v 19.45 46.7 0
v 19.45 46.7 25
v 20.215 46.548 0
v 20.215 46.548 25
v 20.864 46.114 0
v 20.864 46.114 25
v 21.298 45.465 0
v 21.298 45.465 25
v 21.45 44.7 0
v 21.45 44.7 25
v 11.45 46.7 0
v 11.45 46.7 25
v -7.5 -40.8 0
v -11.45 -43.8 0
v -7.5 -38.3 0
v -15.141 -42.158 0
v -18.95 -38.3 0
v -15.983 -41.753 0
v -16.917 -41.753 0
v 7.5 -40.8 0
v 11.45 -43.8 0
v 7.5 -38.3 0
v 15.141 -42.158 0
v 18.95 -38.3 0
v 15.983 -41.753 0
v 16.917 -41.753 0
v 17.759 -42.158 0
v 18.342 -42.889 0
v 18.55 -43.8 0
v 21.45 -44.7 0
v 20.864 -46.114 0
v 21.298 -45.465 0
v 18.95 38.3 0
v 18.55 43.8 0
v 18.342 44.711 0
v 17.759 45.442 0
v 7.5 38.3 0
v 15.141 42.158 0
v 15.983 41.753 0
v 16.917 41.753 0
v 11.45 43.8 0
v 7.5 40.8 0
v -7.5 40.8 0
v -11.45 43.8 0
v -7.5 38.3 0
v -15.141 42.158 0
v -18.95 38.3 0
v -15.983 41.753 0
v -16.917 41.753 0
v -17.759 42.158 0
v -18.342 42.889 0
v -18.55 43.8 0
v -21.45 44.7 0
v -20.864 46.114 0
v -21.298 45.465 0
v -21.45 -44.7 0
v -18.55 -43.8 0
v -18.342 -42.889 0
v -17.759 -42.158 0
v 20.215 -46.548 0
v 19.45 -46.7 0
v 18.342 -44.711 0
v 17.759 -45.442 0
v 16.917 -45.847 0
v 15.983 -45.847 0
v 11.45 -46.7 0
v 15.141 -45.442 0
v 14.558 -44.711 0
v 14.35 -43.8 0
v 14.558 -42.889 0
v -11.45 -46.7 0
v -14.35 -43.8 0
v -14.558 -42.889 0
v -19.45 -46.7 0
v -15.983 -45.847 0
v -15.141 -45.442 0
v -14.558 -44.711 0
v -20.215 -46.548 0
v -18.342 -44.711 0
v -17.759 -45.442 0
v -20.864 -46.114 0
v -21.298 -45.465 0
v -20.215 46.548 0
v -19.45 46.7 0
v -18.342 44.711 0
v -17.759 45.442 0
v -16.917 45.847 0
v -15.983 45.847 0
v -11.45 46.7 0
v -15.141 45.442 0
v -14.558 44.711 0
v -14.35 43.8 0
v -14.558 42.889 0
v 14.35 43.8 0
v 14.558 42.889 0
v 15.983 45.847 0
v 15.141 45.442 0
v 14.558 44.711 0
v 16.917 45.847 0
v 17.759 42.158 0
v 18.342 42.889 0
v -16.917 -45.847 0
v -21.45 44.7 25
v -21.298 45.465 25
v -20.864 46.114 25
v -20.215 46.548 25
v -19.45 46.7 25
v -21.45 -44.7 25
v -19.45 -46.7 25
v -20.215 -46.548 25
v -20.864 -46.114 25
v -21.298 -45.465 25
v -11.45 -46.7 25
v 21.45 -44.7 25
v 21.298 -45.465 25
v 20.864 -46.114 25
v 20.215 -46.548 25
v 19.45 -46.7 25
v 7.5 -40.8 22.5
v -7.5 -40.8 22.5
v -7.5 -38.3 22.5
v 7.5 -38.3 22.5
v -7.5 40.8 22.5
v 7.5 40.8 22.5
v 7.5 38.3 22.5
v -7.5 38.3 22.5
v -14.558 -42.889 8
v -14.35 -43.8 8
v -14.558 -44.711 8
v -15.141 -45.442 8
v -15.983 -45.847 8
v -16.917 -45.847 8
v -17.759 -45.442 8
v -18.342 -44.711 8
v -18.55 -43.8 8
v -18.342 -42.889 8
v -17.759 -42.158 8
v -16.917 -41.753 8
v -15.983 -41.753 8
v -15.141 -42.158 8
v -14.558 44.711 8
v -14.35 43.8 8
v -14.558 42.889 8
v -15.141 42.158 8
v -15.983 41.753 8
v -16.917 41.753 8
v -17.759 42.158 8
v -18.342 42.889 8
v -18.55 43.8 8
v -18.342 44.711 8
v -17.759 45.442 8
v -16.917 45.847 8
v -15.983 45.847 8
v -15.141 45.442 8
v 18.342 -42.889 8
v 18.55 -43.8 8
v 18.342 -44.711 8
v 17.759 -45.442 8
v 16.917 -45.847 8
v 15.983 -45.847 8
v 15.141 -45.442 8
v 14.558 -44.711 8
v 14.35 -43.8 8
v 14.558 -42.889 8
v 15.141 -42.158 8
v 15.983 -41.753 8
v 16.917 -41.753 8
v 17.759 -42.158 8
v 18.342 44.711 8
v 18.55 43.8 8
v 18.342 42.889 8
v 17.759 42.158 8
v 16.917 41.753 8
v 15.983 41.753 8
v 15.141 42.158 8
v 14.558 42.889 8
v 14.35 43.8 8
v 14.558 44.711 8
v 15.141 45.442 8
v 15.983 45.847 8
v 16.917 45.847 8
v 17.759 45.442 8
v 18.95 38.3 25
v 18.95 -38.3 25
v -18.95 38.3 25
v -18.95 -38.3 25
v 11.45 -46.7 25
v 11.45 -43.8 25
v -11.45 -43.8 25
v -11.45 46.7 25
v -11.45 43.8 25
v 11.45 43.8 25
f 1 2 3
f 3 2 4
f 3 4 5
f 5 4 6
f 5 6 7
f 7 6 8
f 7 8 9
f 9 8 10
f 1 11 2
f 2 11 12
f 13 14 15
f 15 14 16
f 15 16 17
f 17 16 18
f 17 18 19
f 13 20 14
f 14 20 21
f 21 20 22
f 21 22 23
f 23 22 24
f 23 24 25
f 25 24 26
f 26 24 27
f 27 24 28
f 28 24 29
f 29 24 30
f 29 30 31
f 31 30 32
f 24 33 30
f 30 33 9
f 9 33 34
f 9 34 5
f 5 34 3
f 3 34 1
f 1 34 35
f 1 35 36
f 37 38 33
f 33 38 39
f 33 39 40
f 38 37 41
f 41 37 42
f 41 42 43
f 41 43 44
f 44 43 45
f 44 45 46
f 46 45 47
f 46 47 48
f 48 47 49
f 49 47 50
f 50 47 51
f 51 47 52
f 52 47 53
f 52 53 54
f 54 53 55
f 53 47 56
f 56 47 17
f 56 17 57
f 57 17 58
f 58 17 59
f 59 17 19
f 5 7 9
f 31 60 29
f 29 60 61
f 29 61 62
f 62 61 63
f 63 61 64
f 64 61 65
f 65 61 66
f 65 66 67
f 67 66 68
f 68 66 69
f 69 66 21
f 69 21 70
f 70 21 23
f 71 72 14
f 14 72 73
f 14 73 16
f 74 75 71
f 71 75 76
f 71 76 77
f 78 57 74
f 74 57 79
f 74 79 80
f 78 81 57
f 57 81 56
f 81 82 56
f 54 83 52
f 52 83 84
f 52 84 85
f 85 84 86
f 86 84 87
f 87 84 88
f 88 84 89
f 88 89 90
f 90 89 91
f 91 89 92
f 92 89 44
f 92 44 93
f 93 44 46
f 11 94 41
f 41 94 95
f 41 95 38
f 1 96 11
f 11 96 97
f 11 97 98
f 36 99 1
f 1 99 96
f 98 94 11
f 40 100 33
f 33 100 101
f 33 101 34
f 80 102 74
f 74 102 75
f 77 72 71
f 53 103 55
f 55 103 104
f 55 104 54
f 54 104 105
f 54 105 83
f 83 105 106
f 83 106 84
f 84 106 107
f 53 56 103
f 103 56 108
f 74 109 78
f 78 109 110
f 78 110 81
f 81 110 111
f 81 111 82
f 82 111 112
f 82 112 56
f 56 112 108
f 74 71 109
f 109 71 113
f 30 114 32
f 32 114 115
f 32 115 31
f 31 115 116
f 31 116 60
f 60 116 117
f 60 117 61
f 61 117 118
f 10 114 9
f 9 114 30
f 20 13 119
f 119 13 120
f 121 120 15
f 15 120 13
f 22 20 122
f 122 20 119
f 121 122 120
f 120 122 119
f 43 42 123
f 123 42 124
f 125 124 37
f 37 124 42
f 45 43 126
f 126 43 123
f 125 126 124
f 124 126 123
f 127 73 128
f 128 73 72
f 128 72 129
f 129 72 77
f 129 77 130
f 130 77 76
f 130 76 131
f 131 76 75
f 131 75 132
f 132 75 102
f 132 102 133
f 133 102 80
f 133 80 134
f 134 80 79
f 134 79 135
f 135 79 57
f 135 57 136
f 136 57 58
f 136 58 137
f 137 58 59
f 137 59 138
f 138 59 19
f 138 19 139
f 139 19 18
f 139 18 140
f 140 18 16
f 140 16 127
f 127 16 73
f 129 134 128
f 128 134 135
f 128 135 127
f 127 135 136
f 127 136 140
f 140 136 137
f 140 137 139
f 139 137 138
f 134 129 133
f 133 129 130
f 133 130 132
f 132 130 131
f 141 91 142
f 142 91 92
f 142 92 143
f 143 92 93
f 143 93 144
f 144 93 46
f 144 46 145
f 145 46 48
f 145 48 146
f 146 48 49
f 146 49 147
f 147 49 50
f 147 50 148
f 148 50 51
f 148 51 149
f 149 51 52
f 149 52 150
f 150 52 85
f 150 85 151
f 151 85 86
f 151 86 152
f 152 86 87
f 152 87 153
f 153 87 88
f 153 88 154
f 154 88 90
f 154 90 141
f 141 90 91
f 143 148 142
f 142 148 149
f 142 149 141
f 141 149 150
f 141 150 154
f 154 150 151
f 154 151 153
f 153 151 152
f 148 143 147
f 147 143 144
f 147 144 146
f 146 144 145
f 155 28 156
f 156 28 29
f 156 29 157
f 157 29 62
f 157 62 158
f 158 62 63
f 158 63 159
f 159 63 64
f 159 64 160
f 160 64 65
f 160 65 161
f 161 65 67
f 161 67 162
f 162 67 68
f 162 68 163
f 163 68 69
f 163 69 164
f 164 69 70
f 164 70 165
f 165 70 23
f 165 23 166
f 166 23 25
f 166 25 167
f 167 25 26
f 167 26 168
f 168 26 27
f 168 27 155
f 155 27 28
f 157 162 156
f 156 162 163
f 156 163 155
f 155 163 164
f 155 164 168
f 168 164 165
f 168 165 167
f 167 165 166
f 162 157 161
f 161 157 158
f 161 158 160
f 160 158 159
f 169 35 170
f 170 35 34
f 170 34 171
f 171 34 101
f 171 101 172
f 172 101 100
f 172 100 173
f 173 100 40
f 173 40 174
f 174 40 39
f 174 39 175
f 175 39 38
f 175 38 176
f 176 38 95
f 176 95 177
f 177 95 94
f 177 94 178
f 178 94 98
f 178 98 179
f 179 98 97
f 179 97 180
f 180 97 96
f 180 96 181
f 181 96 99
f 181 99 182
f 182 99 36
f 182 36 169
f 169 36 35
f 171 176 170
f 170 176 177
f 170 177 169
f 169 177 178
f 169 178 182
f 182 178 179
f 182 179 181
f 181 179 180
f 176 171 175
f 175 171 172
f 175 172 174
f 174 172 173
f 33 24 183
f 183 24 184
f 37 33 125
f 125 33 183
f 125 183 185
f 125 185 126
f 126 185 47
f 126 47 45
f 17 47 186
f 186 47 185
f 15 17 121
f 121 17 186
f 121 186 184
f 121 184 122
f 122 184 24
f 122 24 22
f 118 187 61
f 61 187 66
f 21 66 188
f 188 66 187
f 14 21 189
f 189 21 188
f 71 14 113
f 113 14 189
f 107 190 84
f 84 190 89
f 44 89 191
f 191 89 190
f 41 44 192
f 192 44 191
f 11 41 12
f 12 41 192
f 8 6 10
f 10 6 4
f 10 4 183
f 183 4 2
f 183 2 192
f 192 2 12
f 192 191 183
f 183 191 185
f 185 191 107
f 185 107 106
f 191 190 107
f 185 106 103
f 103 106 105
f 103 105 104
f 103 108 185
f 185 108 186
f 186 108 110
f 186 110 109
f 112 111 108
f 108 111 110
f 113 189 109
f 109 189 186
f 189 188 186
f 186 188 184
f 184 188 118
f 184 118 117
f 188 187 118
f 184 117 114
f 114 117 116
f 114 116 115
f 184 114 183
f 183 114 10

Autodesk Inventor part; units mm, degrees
ref_plane "YZ Plane" through (0, 0, 0) normal (1, 0, 0) x (0, 1, 0)
ref_plane "XZ Plane" through (0, 0, 0) normal (0, 1, 0) x (-1, 0, 0)
ref_plane "XY Plane" through (0, 0, 0) normal (0, 0, 1) x (1, 0, 0)
sketch "Эскиз1" plane through (0, 0, 0) normal (0, 0, 1) x (1, 0, 0)
  line L0 (-18.25, -37.6) -> (18.25, -37.6)
  line L1 (18.25, -37.6) -> (18.25, 37.6)
  line L2 (18.25, 37.6) -> (-18.25, 37.6)
  line L3 (-18.25, 37.6) -> (-18.25, -37.6)
  line L4 (-18.25, 0) -> (18.25, 0) construction
  line L5 (0, 37.6) -> (0, -37.6) construction
  line L6 (-18.45, -37.8) -> (18.45, -37.8)
  line L7 (18.45, -37.8) -> (18.45, 37.8)
  line L8 (18.45, 37.8) -> (-18.45, 37.8)
  line L9 (-18.45, 37.8) -> (-18.45, -37.8)
  line L10 (-7.5, -37.8) -> (7.5, -37.8)
  line L11 (7.5, -37.8) -> (7.5, -40.8)
  line L12 (7.5, -40.8) -> (-7.5, -40.8)
  line L13 (-7.5, -40.8) -> (-7.5, -37.8)
  line L14 (-18.45, -37.8) -> (-18.45, -43.8)
  line L15 (-18.45, -43.8) -> (18.45, -43.8)
  line L16 (18.45, -43.8) -> (18.45, -37.8)
  line L17 (-18.45, 37.8) -> (-18.45, 43.8)
  line L18 (-18.45, 43.8) -> (18.45, 43.8)
  line L19 (18.45, 43.8) -> (18.45, 37.8)
  line L20 (-18.45, -43.8) -> (-21.45, -43.8)
  line L21 (-21.45, -43.8) -> (-21.45, 43.8)
  line L22 (-21.45, 43.8) -> (-18.45, 43.8)
  line L23 (-18.45, 43.8) -> (-18.45, -43.8)
  line L24 (18.45, 37.8) -> (18.45, 43.8)
  line L25 (21.45, -43.8) -> (21.45, 43.8)
  line L26 (21.45, 43.8) -> (18.45, 43.8)
  line L27 (18.45, 43.8) -> (18.45, -43.8)
  line L28 (7.5, 37.8) -> (7.5, 40.8)
  line L29 (7.5, 40.8) -> (-7.5, 40.8)
  line L30 (-7.5, 40.8) -> (-7.5, 37.8)
  line L31 (-21.45, -43.8) -> (-11.45, -43.8)
  line L32 (18.45, -43.8) -> (21.45, -43.8)
  line L33 (21.45, -43.8) -> (11.45, -43.8)
  line L34 (16.45, 46.7) -> (21.45, 46.7)
  line L35 (16.45, 46.7) -> (11.45, 46.7)
  line L36 (11.45, 46.7) -> (11.45, 43.8)
  line L37 (21.45, 46.7) -> (21.45, 43.8)
  line L38 (11.45, 43.8) -> (16.45, 43.8)
  circle A0 centre (16.45, 43.8) radius 2.1
  line L39 (-16.45, 46.7) -> (-21.45, 46.7)
  line L40 (-16.45, 46.7) -> (-11.45, 46.7)
  line L41 (-11.45, 46.7) -> (-11.45, 43.8)
  line L42 (-21.45, 46.7) -> (-21.45, 43.8)
  circle A1 centre (-16.45, 43.8) radius 2.1
  line L43 (16.45, -46.7) -> (21.45, -46.7)
  line L44 (16.45, -46.7) -> (11.45, -46.7)
  line L45 (11.45, -46.7) -> (11.45, -43.8)
  line L46 (21.45, -46.7) -> (21.45, -43.8)
  circle A2 centre (16.45, -43.8) radius 2.1
  line L47 (-11.45, -46.7) -> (-11.45, -43.8)
  line L48 (-16.45, -46.7) -> (-11.45, -46.7)
  line L49 (-16.45, -46.7) -> (-21.45, -46.7)
  line L50 (-21.45, -46.7) -> (-21.45, -43.8)
  circle A3 centre (-16.45, -43.8) radius 2.1
  line L51 (-18.45, -37.8) -> (-18.95, -37.8)
  line L52 (-18.95, -37.8) -> (-18.95, -38.3)
  line L53 (-18.95, -38.3) -> (-18.45, -38.3)
  line L54 (-18.45, -38.3) -> (-18.45, -37.8)
  line L55 (-18.95, -38.3) -> (18.95, -38.3)
  line L56 (18.95, -38.3) -> (18.95, 38.3)
  line L57 (18.95, 38.3) -> (-18.95, 38.3)
  line L58 (-18.95, 38.3) -> (-18.95, -38.3)
  point P0 (0, 0)
  point P1 (0, 0)
  point P2 (-1.9914, -32.8601)
  point P3 (0, -37.8)
  dimension "d0" = 36.5
  dimension "d1" = 75.2
  dimension "d4" = 36.9
  dimension "d5" = 75.6
  dimension "d6" = 15
  dimension "d7" = 3
  dimension "d9" = 6
  dimension "d10" = 3
  dimension "d18" = 5
  dimension "d19" = 4.2
  dimension "d27" = 0.5
  dimension "d28" = 0.5
  dimension "d29" = 37.9
  dimension "d30" = 76.6
extrude "Выдавливание1" add sketch "Эскиз1" along normal blind 25 contours L55 L13 L12 L11 L16 A2 L15 A3 L14 | L14 A3 L20 L21 L22 A1 L17 L57 L58 L52 L53 | L55 L11 L12 L13 | L17 A1 L18 A0 L19 L57 L28 L29 L30 | A3 L15 L14 | L14 L20 A3 | L30 L29 L28 L57 | A1 L22 L17 | L17 L18 A1 | L15 A3 L20 | L15 L47 L48 L49 L50 L20 A3 | L55 L56 L57 L19 A0 L26 L25 L32 A2 L16 | L22 A1 L18 | L22 L42 L39 L40 L41 L18 A1 | A2 L32 L16 | L16 L15 A2 | L15 A2 L32 L46 L43 L44 L45 | A0 L18 L19 | L19 L26 A0 | L32 A2 L15 | L36 L35 L34 L37 L26 A0 L18 | L18 A0 L26
extrude "Выдавливание2" cut sketch "Эскиз1" along normal blind 8 contours A3 L15 L14 | L14 L20 A3 | A1 L22 L17 | L17 L18 A1 | L15 A3 L20 | L22 A1 L18 | A2 L32 L16 | L16 L15 A2 | A0 L18 L19 | L19 L26 A0 | L32 A2 L15 | L18 A0 L26
extrude "Выдавливание3" cut sketch "Эскиз1" along normal blind 22.5 contours L6 L11 L55 L13 | L55 L11 L12 L13 | L30 L57 L28 L8 | L30 L29 L28 L57
fillet "Сопряжение1" radius 2 4 edges at (21.45, -46.7, 12.5) (-21.45, -46.7, 12.5) (-21.45, 46.7, 12.5) (21.45, 46.7, 12.5)
properties part number "fast_akkum"
